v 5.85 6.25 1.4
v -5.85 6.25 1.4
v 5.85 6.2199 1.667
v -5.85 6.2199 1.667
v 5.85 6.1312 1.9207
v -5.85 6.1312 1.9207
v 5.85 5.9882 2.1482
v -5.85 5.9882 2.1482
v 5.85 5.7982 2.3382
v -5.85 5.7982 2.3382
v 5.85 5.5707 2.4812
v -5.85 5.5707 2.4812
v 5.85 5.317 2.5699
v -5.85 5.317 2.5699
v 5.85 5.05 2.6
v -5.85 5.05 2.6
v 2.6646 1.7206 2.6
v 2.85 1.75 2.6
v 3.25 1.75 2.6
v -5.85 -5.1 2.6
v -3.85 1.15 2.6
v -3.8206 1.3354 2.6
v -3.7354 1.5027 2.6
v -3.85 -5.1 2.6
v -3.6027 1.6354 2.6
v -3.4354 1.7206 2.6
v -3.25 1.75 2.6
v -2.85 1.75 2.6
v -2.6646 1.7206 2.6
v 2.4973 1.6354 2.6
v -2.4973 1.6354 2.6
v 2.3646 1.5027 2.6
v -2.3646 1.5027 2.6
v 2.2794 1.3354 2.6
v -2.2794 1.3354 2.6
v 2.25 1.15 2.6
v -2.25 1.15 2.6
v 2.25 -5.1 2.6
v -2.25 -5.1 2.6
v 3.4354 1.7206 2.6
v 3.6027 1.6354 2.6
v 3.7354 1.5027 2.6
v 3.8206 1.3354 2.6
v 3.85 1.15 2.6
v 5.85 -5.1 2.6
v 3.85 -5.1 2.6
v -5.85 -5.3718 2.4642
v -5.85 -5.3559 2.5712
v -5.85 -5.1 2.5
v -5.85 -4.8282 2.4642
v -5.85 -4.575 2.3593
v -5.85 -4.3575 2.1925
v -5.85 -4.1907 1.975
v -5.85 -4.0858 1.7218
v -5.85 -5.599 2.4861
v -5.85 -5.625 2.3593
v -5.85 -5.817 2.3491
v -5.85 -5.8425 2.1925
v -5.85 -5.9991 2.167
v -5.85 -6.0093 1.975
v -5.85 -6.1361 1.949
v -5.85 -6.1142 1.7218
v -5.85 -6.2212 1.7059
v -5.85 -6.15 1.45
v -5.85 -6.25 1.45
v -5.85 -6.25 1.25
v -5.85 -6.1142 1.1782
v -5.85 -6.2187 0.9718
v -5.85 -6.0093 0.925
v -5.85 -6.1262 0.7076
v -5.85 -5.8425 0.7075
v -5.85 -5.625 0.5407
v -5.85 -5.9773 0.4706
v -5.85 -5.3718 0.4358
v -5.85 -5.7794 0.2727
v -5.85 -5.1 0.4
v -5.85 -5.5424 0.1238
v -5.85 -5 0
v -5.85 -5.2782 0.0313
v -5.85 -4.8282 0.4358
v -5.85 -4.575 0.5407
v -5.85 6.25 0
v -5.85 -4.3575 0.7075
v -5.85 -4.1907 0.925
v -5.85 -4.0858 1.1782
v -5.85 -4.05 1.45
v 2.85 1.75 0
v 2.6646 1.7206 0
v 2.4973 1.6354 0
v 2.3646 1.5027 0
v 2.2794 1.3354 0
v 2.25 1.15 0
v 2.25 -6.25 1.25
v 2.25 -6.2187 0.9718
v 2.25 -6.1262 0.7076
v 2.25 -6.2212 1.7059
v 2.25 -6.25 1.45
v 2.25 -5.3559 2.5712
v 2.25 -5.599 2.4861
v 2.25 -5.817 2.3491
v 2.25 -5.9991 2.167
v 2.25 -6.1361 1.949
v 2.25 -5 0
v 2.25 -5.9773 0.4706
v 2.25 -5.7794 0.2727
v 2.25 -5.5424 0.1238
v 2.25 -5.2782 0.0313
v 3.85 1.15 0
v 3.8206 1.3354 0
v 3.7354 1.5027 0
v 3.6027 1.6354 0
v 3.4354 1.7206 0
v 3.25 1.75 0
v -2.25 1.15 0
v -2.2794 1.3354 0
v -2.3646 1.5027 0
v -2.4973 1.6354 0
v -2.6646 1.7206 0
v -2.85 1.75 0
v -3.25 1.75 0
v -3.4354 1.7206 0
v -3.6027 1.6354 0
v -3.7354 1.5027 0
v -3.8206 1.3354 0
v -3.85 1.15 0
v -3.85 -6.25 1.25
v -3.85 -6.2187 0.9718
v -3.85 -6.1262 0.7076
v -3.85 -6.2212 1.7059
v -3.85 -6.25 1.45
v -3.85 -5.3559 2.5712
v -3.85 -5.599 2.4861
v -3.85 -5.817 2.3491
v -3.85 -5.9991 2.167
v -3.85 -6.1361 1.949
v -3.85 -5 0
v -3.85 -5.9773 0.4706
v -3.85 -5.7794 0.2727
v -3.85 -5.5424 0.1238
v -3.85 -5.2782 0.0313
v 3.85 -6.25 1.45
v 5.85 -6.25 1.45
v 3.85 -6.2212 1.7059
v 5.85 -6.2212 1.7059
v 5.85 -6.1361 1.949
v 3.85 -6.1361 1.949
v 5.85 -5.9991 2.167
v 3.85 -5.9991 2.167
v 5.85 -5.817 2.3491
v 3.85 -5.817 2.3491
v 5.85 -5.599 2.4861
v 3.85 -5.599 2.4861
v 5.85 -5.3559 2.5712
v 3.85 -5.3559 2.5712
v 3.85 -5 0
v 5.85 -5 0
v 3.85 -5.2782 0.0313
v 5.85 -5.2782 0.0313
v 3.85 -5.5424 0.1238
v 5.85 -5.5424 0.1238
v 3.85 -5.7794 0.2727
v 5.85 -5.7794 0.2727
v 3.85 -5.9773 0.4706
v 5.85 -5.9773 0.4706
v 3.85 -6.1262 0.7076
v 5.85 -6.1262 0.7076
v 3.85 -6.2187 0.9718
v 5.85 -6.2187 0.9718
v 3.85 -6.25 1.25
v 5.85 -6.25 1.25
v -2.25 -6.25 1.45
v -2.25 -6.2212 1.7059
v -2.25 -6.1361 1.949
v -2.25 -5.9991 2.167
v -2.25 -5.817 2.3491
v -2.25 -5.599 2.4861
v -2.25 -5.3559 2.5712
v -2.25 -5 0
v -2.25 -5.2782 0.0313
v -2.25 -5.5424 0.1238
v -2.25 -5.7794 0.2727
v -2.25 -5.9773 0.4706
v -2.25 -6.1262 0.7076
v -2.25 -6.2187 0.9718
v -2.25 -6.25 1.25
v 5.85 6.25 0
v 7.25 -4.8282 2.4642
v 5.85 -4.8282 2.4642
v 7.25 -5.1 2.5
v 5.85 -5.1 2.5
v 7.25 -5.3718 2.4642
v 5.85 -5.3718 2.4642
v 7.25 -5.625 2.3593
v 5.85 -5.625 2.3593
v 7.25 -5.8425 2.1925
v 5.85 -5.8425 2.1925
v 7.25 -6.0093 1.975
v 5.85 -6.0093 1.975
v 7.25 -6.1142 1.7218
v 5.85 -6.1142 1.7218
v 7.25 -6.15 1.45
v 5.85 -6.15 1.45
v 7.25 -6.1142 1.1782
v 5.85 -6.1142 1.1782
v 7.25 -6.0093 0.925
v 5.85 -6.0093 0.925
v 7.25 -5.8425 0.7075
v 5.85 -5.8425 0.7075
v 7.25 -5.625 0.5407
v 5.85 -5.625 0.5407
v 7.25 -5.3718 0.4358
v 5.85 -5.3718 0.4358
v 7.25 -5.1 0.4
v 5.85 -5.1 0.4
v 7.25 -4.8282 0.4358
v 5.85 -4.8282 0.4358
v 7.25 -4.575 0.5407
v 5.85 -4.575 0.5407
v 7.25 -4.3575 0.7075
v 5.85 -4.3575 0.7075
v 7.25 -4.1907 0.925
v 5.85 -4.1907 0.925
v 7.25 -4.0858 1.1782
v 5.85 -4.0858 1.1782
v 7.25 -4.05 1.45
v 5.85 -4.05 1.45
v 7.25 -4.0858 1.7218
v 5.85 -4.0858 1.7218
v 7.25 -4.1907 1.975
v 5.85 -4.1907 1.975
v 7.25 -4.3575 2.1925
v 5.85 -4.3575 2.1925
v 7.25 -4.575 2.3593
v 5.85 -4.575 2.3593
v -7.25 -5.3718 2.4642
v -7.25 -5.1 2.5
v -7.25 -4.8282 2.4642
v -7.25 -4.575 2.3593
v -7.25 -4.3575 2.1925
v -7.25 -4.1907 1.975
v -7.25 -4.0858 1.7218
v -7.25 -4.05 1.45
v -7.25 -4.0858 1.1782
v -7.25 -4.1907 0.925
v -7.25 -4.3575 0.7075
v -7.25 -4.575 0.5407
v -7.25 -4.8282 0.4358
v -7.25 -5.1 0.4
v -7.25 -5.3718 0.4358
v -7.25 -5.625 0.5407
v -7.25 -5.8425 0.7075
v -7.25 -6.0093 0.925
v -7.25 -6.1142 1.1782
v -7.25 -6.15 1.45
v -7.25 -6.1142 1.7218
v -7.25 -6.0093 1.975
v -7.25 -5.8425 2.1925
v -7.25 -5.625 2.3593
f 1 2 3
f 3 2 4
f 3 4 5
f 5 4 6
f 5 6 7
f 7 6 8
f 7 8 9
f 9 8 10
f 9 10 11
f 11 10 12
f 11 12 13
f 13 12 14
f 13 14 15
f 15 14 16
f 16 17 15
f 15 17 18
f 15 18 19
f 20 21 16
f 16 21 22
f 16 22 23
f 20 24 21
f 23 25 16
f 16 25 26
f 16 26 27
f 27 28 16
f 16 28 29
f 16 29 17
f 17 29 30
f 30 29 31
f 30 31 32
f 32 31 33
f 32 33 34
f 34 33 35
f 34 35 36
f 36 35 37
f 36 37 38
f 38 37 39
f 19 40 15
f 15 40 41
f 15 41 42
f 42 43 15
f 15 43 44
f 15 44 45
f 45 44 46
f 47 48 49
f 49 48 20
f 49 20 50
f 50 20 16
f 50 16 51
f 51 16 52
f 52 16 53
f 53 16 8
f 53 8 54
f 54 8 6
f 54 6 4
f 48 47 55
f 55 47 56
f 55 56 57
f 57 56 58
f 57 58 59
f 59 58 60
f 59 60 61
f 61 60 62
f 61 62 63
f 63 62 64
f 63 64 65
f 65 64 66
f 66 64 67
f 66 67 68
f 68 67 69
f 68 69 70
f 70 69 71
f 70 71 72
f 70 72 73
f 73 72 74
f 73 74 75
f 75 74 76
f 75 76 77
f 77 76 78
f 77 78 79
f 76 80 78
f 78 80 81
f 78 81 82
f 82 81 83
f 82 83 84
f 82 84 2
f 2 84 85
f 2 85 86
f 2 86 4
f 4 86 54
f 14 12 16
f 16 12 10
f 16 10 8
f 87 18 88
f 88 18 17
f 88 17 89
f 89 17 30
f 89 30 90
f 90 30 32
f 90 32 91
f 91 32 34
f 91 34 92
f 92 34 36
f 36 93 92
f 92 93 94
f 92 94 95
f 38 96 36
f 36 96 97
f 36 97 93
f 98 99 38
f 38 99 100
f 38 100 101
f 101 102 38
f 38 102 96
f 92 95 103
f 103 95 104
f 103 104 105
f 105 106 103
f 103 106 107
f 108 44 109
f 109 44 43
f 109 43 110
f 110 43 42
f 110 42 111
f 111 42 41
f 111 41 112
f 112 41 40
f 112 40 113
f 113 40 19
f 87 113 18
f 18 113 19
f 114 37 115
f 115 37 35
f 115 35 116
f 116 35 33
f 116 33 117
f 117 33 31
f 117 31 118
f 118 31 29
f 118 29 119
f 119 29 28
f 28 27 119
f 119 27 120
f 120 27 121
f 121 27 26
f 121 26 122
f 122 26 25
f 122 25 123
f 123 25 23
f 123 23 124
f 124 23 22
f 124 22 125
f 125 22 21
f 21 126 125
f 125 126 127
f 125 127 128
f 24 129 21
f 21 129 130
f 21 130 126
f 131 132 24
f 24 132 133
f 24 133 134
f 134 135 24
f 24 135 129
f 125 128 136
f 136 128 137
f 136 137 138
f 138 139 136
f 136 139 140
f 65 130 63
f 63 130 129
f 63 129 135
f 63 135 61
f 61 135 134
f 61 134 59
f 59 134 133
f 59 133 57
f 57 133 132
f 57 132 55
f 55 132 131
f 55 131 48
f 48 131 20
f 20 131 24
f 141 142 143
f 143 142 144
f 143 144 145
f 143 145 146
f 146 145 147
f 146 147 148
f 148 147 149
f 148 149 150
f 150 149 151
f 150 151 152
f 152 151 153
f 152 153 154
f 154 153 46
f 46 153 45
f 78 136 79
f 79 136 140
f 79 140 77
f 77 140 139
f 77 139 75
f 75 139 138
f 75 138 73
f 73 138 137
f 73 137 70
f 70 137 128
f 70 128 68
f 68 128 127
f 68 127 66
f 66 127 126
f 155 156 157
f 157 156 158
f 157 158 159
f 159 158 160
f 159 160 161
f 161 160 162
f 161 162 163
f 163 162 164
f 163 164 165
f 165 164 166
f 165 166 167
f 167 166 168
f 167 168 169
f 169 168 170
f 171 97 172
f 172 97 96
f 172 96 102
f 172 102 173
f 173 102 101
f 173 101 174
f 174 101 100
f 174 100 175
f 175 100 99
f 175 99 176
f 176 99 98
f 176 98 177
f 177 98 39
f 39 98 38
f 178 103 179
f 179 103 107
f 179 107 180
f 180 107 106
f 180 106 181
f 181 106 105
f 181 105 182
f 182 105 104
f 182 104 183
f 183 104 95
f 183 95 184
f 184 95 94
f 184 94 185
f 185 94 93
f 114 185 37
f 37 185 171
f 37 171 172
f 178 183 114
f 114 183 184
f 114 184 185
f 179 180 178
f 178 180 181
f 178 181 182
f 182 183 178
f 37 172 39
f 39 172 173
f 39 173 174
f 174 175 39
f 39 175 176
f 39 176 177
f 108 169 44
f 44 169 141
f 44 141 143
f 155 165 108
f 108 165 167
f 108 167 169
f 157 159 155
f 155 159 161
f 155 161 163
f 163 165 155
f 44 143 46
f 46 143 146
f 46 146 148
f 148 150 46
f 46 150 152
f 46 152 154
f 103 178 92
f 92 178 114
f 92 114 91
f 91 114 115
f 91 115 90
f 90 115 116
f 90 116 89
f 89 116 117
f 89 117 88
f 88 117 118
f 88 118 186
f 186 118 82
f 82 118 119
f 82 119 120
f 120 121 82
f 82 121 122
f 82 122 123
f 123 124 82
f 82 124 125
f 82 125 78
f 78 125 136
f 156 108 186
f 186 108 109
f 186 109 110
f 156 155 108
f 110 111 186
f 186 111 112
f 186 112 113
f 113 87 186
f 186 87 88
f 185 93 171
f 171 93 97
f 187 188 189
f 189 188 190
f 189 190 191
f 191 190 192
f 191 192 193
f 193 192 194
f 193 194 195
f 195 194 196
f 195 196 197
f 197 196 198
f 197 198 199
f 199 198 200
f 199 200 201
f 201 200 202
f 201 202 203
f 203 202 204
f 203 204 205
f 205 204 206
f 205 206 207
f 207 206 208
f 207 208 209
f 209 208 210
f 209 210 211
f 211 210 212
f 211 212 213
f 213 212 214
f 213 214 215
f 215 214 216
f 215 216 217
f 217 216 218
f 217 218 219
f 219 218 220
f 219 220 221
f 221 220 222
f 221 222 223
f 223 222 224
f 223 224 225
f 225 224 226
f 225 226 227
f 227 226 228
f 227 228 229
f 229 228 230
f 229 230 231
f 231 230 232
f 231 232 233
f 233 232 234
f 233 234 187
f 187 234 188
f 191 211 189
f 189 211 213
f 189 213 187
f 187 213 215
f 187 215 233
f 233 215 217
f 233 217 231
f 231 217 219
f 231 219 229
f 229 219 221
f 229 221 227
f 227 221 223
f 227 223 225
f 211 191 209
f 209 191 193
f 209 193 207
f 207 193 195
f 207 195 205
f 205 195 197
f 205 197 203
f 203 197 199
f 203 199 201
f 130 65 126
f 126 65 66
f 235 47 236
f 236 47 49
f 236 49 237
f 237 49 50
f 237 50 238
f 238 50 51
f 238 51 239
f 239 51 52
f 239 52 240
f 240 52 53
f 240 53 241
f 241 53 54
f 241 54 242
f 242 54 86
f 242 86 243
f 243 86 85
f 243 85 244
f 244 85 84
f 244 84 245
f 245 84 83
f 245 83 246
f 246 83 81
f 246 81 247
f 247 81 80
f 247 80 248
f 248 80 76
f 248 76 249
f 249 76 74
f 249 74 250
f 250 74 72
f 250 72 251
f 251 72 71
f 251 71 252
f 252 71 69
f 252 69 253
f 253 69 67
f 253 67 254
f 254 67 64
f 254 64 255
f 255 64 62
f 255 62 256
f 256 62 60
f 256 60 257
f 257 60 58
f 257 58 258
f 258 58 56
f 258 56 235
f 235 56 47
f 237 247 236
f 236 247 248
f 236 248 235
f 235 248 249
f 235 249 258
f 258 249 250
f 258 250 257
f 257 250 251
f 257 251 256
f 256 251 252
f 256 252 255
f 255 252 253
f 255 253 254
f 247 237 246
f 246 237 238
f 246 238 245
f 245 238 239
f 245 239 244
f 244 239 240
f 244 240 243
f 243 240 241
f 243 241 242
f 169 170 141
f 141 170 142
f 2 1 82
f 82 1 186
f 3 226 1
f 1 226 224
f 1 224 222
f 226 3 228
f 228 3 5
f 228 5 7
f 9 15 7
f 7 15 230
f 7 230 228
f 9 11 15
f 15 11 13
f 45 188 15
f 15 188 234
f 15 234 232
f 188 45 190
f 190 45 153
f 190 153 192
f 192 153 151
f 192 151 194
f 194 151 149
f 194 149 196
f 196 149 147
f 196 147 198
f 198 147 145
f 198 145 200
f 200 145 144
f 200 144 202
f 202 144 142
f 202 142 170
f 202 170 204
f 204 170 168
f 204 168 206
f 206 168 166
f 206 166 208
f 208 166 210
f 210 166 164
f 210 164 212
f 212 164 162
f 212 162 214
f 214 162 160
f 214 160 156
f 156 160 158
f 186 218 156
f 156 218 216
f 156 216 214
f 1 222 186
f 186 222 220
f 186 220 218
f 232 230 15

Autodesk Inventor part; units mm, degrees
ref_plane "YZ Plane" through (0, 0, 0) normal (1, 0, 0) x (0, 1, 0)
ref_plane "XZ Plane" through (0, 0, 0) normal (0, 1, 0) x (-1, 0, 0)
ref_plane "XY Plane" through (0, 0, 0) normal (0, 0, 1) x (1, 0, 0)
sketch "Sketch1" plane through (0, 0, 0) normal (0, 0, 1) x (1, 0, 0)
  line L0 (0, -8.75) -> (0, 8.75) construction
  line L1 (-8.19, 0) -> (8.19, 0) construction
  line L2 (-5.85, -6.25) -> (5.85, -6.25)
  line L3 (5.85, -6.25) -> (5.85, 6.25)
  line L4 (5.85, 6.25) -> (-5.85, 6.25)
  line L5 (-5.85, 6.25) -> (-5.85, -6.25)
  line L6 (0, -6.25) -> (0, 6.25) construction
  point P0 (0, 0)
  dimension "d0" = 12.5
  dimension "d1" = 11.7
extrude "Extrusion1" add sketch "Sketch1" along normal blind 2.6
sketch "Sketch3" plane through (-5.85, -6.25, 0) normal (-1, 0, 0) x (0, 0, 1)
  line L0 (0, 12.5) -> (0, 0) construction
  line L1 (0, 0) -> (2.6, 0) construction
  circle A0 centre (1.45, 1.15) radius 1.05
  line L2 (1.45, 1.15) -> (2.5, 1.15) construction
  line L3 (2.6, 12.5) -> (2.6, 0) construction
  line L4 (1.45, 1.15) -> (1.45, 0.1) construction
  point P0 (0, 6.25)
  dimension "d10" = 2.1
  dimension "d11" = 0.1
  dimension "d23" = 0.1
extrude "Extrusion3" add sketch "Sketch3" along normal blind 1.4
sketch "Sketch4" plane through (0, 0, 2.6) normal (0, 0, 1) x (1, 0, 0)
  line L0 (-5.85, -6.25) -> (5.85, -6.25) construction
  line L1 (-5.85, 6.25) -> (-5.85, -6.25) construction
  line L2 (-2.25, -6.25) -> (-3.85, -6.25)
  line L3 (-3.85, -6.25) -> (-3.85, 1.75)
  line L4 (-3.85, 1.75) -> (-2.25, 1.75)
  line L5 (-2.25, 1.75) -> (-2.25, -6.25)
  point P0 (0, 0)
  dimension "d18" = 2
  dimension "d19" = 1.6
  dimension "d20" = 8
extrude "Extrusion4" cut sketch "Sketch4" against normal through all
mirror "Mirror1" about plane through (0, 0, 0) normal (1, 0, 0) of "Extrusion3", "Extrusion4"
sketch "Sketch6" plane through (-5.85, -6.25, 0) normal (-1, 0, 0) x (0, 0, 1)
  circle A0 centre (1.45, 1.15) radius 1.05 construction
  line L0 (0, 0) -> (2.6, 0) construction
  line L1 (2.6, 12.5) -> (2.6, 0) construction
  line L2 (0, 12.5) -> (0, 0) construction
  arc A1 (1.45, 0) -> (2.6, 1.15) centre (1.45, 1.15) ccw
  line L3 (1.45, 1.15) -> (2.6, 1.15) construction
  line L4 (1.45, 1.15) -> (1.45, 0) construction
  line L5 (0, 1.25) -> (-2, 1.25)
  line L6 (-2, 1.25) -> (-2, -1.75)
  line L7 (-2, -1.75) -> (3, -1.75)
  line L8 (3, -1.75) -> (3, 1.25)
  line L9 (3, 1.25) -> (2.6, 1.15)
  arc A2 (0, 1.25) -> (1.25, 0) centre (1.25, 1.25) ccw
  line L10 (1.25, 0) -> (1.45, 0)
  line L11 (0.0201, 1.25) -> (1.25, 1.25) construction
  point P0 (0, 6.25)
  point P1 (3, 1.25)
  dimension "d32" = 3
  dimension "d34" = 3
  dimension "d49" = 0.2
  dimension "d50" = 2
  dimension "d51" = 5
extrude "Extrusion5" cut sketch "Sketch6" against normal through all
fillet "Fillet1" radius 0.6 4 edges at (-3.85, 1.75, 1.3) (-2.25, 1.75, 1.3) (3.85, 1.75, 1.3) (2.25, 1.75, 1.3)
fillet "Fillet3" radius 1.2 1 edges at (0, 6.25, 2.6)
properties part number "tilt_leg"
